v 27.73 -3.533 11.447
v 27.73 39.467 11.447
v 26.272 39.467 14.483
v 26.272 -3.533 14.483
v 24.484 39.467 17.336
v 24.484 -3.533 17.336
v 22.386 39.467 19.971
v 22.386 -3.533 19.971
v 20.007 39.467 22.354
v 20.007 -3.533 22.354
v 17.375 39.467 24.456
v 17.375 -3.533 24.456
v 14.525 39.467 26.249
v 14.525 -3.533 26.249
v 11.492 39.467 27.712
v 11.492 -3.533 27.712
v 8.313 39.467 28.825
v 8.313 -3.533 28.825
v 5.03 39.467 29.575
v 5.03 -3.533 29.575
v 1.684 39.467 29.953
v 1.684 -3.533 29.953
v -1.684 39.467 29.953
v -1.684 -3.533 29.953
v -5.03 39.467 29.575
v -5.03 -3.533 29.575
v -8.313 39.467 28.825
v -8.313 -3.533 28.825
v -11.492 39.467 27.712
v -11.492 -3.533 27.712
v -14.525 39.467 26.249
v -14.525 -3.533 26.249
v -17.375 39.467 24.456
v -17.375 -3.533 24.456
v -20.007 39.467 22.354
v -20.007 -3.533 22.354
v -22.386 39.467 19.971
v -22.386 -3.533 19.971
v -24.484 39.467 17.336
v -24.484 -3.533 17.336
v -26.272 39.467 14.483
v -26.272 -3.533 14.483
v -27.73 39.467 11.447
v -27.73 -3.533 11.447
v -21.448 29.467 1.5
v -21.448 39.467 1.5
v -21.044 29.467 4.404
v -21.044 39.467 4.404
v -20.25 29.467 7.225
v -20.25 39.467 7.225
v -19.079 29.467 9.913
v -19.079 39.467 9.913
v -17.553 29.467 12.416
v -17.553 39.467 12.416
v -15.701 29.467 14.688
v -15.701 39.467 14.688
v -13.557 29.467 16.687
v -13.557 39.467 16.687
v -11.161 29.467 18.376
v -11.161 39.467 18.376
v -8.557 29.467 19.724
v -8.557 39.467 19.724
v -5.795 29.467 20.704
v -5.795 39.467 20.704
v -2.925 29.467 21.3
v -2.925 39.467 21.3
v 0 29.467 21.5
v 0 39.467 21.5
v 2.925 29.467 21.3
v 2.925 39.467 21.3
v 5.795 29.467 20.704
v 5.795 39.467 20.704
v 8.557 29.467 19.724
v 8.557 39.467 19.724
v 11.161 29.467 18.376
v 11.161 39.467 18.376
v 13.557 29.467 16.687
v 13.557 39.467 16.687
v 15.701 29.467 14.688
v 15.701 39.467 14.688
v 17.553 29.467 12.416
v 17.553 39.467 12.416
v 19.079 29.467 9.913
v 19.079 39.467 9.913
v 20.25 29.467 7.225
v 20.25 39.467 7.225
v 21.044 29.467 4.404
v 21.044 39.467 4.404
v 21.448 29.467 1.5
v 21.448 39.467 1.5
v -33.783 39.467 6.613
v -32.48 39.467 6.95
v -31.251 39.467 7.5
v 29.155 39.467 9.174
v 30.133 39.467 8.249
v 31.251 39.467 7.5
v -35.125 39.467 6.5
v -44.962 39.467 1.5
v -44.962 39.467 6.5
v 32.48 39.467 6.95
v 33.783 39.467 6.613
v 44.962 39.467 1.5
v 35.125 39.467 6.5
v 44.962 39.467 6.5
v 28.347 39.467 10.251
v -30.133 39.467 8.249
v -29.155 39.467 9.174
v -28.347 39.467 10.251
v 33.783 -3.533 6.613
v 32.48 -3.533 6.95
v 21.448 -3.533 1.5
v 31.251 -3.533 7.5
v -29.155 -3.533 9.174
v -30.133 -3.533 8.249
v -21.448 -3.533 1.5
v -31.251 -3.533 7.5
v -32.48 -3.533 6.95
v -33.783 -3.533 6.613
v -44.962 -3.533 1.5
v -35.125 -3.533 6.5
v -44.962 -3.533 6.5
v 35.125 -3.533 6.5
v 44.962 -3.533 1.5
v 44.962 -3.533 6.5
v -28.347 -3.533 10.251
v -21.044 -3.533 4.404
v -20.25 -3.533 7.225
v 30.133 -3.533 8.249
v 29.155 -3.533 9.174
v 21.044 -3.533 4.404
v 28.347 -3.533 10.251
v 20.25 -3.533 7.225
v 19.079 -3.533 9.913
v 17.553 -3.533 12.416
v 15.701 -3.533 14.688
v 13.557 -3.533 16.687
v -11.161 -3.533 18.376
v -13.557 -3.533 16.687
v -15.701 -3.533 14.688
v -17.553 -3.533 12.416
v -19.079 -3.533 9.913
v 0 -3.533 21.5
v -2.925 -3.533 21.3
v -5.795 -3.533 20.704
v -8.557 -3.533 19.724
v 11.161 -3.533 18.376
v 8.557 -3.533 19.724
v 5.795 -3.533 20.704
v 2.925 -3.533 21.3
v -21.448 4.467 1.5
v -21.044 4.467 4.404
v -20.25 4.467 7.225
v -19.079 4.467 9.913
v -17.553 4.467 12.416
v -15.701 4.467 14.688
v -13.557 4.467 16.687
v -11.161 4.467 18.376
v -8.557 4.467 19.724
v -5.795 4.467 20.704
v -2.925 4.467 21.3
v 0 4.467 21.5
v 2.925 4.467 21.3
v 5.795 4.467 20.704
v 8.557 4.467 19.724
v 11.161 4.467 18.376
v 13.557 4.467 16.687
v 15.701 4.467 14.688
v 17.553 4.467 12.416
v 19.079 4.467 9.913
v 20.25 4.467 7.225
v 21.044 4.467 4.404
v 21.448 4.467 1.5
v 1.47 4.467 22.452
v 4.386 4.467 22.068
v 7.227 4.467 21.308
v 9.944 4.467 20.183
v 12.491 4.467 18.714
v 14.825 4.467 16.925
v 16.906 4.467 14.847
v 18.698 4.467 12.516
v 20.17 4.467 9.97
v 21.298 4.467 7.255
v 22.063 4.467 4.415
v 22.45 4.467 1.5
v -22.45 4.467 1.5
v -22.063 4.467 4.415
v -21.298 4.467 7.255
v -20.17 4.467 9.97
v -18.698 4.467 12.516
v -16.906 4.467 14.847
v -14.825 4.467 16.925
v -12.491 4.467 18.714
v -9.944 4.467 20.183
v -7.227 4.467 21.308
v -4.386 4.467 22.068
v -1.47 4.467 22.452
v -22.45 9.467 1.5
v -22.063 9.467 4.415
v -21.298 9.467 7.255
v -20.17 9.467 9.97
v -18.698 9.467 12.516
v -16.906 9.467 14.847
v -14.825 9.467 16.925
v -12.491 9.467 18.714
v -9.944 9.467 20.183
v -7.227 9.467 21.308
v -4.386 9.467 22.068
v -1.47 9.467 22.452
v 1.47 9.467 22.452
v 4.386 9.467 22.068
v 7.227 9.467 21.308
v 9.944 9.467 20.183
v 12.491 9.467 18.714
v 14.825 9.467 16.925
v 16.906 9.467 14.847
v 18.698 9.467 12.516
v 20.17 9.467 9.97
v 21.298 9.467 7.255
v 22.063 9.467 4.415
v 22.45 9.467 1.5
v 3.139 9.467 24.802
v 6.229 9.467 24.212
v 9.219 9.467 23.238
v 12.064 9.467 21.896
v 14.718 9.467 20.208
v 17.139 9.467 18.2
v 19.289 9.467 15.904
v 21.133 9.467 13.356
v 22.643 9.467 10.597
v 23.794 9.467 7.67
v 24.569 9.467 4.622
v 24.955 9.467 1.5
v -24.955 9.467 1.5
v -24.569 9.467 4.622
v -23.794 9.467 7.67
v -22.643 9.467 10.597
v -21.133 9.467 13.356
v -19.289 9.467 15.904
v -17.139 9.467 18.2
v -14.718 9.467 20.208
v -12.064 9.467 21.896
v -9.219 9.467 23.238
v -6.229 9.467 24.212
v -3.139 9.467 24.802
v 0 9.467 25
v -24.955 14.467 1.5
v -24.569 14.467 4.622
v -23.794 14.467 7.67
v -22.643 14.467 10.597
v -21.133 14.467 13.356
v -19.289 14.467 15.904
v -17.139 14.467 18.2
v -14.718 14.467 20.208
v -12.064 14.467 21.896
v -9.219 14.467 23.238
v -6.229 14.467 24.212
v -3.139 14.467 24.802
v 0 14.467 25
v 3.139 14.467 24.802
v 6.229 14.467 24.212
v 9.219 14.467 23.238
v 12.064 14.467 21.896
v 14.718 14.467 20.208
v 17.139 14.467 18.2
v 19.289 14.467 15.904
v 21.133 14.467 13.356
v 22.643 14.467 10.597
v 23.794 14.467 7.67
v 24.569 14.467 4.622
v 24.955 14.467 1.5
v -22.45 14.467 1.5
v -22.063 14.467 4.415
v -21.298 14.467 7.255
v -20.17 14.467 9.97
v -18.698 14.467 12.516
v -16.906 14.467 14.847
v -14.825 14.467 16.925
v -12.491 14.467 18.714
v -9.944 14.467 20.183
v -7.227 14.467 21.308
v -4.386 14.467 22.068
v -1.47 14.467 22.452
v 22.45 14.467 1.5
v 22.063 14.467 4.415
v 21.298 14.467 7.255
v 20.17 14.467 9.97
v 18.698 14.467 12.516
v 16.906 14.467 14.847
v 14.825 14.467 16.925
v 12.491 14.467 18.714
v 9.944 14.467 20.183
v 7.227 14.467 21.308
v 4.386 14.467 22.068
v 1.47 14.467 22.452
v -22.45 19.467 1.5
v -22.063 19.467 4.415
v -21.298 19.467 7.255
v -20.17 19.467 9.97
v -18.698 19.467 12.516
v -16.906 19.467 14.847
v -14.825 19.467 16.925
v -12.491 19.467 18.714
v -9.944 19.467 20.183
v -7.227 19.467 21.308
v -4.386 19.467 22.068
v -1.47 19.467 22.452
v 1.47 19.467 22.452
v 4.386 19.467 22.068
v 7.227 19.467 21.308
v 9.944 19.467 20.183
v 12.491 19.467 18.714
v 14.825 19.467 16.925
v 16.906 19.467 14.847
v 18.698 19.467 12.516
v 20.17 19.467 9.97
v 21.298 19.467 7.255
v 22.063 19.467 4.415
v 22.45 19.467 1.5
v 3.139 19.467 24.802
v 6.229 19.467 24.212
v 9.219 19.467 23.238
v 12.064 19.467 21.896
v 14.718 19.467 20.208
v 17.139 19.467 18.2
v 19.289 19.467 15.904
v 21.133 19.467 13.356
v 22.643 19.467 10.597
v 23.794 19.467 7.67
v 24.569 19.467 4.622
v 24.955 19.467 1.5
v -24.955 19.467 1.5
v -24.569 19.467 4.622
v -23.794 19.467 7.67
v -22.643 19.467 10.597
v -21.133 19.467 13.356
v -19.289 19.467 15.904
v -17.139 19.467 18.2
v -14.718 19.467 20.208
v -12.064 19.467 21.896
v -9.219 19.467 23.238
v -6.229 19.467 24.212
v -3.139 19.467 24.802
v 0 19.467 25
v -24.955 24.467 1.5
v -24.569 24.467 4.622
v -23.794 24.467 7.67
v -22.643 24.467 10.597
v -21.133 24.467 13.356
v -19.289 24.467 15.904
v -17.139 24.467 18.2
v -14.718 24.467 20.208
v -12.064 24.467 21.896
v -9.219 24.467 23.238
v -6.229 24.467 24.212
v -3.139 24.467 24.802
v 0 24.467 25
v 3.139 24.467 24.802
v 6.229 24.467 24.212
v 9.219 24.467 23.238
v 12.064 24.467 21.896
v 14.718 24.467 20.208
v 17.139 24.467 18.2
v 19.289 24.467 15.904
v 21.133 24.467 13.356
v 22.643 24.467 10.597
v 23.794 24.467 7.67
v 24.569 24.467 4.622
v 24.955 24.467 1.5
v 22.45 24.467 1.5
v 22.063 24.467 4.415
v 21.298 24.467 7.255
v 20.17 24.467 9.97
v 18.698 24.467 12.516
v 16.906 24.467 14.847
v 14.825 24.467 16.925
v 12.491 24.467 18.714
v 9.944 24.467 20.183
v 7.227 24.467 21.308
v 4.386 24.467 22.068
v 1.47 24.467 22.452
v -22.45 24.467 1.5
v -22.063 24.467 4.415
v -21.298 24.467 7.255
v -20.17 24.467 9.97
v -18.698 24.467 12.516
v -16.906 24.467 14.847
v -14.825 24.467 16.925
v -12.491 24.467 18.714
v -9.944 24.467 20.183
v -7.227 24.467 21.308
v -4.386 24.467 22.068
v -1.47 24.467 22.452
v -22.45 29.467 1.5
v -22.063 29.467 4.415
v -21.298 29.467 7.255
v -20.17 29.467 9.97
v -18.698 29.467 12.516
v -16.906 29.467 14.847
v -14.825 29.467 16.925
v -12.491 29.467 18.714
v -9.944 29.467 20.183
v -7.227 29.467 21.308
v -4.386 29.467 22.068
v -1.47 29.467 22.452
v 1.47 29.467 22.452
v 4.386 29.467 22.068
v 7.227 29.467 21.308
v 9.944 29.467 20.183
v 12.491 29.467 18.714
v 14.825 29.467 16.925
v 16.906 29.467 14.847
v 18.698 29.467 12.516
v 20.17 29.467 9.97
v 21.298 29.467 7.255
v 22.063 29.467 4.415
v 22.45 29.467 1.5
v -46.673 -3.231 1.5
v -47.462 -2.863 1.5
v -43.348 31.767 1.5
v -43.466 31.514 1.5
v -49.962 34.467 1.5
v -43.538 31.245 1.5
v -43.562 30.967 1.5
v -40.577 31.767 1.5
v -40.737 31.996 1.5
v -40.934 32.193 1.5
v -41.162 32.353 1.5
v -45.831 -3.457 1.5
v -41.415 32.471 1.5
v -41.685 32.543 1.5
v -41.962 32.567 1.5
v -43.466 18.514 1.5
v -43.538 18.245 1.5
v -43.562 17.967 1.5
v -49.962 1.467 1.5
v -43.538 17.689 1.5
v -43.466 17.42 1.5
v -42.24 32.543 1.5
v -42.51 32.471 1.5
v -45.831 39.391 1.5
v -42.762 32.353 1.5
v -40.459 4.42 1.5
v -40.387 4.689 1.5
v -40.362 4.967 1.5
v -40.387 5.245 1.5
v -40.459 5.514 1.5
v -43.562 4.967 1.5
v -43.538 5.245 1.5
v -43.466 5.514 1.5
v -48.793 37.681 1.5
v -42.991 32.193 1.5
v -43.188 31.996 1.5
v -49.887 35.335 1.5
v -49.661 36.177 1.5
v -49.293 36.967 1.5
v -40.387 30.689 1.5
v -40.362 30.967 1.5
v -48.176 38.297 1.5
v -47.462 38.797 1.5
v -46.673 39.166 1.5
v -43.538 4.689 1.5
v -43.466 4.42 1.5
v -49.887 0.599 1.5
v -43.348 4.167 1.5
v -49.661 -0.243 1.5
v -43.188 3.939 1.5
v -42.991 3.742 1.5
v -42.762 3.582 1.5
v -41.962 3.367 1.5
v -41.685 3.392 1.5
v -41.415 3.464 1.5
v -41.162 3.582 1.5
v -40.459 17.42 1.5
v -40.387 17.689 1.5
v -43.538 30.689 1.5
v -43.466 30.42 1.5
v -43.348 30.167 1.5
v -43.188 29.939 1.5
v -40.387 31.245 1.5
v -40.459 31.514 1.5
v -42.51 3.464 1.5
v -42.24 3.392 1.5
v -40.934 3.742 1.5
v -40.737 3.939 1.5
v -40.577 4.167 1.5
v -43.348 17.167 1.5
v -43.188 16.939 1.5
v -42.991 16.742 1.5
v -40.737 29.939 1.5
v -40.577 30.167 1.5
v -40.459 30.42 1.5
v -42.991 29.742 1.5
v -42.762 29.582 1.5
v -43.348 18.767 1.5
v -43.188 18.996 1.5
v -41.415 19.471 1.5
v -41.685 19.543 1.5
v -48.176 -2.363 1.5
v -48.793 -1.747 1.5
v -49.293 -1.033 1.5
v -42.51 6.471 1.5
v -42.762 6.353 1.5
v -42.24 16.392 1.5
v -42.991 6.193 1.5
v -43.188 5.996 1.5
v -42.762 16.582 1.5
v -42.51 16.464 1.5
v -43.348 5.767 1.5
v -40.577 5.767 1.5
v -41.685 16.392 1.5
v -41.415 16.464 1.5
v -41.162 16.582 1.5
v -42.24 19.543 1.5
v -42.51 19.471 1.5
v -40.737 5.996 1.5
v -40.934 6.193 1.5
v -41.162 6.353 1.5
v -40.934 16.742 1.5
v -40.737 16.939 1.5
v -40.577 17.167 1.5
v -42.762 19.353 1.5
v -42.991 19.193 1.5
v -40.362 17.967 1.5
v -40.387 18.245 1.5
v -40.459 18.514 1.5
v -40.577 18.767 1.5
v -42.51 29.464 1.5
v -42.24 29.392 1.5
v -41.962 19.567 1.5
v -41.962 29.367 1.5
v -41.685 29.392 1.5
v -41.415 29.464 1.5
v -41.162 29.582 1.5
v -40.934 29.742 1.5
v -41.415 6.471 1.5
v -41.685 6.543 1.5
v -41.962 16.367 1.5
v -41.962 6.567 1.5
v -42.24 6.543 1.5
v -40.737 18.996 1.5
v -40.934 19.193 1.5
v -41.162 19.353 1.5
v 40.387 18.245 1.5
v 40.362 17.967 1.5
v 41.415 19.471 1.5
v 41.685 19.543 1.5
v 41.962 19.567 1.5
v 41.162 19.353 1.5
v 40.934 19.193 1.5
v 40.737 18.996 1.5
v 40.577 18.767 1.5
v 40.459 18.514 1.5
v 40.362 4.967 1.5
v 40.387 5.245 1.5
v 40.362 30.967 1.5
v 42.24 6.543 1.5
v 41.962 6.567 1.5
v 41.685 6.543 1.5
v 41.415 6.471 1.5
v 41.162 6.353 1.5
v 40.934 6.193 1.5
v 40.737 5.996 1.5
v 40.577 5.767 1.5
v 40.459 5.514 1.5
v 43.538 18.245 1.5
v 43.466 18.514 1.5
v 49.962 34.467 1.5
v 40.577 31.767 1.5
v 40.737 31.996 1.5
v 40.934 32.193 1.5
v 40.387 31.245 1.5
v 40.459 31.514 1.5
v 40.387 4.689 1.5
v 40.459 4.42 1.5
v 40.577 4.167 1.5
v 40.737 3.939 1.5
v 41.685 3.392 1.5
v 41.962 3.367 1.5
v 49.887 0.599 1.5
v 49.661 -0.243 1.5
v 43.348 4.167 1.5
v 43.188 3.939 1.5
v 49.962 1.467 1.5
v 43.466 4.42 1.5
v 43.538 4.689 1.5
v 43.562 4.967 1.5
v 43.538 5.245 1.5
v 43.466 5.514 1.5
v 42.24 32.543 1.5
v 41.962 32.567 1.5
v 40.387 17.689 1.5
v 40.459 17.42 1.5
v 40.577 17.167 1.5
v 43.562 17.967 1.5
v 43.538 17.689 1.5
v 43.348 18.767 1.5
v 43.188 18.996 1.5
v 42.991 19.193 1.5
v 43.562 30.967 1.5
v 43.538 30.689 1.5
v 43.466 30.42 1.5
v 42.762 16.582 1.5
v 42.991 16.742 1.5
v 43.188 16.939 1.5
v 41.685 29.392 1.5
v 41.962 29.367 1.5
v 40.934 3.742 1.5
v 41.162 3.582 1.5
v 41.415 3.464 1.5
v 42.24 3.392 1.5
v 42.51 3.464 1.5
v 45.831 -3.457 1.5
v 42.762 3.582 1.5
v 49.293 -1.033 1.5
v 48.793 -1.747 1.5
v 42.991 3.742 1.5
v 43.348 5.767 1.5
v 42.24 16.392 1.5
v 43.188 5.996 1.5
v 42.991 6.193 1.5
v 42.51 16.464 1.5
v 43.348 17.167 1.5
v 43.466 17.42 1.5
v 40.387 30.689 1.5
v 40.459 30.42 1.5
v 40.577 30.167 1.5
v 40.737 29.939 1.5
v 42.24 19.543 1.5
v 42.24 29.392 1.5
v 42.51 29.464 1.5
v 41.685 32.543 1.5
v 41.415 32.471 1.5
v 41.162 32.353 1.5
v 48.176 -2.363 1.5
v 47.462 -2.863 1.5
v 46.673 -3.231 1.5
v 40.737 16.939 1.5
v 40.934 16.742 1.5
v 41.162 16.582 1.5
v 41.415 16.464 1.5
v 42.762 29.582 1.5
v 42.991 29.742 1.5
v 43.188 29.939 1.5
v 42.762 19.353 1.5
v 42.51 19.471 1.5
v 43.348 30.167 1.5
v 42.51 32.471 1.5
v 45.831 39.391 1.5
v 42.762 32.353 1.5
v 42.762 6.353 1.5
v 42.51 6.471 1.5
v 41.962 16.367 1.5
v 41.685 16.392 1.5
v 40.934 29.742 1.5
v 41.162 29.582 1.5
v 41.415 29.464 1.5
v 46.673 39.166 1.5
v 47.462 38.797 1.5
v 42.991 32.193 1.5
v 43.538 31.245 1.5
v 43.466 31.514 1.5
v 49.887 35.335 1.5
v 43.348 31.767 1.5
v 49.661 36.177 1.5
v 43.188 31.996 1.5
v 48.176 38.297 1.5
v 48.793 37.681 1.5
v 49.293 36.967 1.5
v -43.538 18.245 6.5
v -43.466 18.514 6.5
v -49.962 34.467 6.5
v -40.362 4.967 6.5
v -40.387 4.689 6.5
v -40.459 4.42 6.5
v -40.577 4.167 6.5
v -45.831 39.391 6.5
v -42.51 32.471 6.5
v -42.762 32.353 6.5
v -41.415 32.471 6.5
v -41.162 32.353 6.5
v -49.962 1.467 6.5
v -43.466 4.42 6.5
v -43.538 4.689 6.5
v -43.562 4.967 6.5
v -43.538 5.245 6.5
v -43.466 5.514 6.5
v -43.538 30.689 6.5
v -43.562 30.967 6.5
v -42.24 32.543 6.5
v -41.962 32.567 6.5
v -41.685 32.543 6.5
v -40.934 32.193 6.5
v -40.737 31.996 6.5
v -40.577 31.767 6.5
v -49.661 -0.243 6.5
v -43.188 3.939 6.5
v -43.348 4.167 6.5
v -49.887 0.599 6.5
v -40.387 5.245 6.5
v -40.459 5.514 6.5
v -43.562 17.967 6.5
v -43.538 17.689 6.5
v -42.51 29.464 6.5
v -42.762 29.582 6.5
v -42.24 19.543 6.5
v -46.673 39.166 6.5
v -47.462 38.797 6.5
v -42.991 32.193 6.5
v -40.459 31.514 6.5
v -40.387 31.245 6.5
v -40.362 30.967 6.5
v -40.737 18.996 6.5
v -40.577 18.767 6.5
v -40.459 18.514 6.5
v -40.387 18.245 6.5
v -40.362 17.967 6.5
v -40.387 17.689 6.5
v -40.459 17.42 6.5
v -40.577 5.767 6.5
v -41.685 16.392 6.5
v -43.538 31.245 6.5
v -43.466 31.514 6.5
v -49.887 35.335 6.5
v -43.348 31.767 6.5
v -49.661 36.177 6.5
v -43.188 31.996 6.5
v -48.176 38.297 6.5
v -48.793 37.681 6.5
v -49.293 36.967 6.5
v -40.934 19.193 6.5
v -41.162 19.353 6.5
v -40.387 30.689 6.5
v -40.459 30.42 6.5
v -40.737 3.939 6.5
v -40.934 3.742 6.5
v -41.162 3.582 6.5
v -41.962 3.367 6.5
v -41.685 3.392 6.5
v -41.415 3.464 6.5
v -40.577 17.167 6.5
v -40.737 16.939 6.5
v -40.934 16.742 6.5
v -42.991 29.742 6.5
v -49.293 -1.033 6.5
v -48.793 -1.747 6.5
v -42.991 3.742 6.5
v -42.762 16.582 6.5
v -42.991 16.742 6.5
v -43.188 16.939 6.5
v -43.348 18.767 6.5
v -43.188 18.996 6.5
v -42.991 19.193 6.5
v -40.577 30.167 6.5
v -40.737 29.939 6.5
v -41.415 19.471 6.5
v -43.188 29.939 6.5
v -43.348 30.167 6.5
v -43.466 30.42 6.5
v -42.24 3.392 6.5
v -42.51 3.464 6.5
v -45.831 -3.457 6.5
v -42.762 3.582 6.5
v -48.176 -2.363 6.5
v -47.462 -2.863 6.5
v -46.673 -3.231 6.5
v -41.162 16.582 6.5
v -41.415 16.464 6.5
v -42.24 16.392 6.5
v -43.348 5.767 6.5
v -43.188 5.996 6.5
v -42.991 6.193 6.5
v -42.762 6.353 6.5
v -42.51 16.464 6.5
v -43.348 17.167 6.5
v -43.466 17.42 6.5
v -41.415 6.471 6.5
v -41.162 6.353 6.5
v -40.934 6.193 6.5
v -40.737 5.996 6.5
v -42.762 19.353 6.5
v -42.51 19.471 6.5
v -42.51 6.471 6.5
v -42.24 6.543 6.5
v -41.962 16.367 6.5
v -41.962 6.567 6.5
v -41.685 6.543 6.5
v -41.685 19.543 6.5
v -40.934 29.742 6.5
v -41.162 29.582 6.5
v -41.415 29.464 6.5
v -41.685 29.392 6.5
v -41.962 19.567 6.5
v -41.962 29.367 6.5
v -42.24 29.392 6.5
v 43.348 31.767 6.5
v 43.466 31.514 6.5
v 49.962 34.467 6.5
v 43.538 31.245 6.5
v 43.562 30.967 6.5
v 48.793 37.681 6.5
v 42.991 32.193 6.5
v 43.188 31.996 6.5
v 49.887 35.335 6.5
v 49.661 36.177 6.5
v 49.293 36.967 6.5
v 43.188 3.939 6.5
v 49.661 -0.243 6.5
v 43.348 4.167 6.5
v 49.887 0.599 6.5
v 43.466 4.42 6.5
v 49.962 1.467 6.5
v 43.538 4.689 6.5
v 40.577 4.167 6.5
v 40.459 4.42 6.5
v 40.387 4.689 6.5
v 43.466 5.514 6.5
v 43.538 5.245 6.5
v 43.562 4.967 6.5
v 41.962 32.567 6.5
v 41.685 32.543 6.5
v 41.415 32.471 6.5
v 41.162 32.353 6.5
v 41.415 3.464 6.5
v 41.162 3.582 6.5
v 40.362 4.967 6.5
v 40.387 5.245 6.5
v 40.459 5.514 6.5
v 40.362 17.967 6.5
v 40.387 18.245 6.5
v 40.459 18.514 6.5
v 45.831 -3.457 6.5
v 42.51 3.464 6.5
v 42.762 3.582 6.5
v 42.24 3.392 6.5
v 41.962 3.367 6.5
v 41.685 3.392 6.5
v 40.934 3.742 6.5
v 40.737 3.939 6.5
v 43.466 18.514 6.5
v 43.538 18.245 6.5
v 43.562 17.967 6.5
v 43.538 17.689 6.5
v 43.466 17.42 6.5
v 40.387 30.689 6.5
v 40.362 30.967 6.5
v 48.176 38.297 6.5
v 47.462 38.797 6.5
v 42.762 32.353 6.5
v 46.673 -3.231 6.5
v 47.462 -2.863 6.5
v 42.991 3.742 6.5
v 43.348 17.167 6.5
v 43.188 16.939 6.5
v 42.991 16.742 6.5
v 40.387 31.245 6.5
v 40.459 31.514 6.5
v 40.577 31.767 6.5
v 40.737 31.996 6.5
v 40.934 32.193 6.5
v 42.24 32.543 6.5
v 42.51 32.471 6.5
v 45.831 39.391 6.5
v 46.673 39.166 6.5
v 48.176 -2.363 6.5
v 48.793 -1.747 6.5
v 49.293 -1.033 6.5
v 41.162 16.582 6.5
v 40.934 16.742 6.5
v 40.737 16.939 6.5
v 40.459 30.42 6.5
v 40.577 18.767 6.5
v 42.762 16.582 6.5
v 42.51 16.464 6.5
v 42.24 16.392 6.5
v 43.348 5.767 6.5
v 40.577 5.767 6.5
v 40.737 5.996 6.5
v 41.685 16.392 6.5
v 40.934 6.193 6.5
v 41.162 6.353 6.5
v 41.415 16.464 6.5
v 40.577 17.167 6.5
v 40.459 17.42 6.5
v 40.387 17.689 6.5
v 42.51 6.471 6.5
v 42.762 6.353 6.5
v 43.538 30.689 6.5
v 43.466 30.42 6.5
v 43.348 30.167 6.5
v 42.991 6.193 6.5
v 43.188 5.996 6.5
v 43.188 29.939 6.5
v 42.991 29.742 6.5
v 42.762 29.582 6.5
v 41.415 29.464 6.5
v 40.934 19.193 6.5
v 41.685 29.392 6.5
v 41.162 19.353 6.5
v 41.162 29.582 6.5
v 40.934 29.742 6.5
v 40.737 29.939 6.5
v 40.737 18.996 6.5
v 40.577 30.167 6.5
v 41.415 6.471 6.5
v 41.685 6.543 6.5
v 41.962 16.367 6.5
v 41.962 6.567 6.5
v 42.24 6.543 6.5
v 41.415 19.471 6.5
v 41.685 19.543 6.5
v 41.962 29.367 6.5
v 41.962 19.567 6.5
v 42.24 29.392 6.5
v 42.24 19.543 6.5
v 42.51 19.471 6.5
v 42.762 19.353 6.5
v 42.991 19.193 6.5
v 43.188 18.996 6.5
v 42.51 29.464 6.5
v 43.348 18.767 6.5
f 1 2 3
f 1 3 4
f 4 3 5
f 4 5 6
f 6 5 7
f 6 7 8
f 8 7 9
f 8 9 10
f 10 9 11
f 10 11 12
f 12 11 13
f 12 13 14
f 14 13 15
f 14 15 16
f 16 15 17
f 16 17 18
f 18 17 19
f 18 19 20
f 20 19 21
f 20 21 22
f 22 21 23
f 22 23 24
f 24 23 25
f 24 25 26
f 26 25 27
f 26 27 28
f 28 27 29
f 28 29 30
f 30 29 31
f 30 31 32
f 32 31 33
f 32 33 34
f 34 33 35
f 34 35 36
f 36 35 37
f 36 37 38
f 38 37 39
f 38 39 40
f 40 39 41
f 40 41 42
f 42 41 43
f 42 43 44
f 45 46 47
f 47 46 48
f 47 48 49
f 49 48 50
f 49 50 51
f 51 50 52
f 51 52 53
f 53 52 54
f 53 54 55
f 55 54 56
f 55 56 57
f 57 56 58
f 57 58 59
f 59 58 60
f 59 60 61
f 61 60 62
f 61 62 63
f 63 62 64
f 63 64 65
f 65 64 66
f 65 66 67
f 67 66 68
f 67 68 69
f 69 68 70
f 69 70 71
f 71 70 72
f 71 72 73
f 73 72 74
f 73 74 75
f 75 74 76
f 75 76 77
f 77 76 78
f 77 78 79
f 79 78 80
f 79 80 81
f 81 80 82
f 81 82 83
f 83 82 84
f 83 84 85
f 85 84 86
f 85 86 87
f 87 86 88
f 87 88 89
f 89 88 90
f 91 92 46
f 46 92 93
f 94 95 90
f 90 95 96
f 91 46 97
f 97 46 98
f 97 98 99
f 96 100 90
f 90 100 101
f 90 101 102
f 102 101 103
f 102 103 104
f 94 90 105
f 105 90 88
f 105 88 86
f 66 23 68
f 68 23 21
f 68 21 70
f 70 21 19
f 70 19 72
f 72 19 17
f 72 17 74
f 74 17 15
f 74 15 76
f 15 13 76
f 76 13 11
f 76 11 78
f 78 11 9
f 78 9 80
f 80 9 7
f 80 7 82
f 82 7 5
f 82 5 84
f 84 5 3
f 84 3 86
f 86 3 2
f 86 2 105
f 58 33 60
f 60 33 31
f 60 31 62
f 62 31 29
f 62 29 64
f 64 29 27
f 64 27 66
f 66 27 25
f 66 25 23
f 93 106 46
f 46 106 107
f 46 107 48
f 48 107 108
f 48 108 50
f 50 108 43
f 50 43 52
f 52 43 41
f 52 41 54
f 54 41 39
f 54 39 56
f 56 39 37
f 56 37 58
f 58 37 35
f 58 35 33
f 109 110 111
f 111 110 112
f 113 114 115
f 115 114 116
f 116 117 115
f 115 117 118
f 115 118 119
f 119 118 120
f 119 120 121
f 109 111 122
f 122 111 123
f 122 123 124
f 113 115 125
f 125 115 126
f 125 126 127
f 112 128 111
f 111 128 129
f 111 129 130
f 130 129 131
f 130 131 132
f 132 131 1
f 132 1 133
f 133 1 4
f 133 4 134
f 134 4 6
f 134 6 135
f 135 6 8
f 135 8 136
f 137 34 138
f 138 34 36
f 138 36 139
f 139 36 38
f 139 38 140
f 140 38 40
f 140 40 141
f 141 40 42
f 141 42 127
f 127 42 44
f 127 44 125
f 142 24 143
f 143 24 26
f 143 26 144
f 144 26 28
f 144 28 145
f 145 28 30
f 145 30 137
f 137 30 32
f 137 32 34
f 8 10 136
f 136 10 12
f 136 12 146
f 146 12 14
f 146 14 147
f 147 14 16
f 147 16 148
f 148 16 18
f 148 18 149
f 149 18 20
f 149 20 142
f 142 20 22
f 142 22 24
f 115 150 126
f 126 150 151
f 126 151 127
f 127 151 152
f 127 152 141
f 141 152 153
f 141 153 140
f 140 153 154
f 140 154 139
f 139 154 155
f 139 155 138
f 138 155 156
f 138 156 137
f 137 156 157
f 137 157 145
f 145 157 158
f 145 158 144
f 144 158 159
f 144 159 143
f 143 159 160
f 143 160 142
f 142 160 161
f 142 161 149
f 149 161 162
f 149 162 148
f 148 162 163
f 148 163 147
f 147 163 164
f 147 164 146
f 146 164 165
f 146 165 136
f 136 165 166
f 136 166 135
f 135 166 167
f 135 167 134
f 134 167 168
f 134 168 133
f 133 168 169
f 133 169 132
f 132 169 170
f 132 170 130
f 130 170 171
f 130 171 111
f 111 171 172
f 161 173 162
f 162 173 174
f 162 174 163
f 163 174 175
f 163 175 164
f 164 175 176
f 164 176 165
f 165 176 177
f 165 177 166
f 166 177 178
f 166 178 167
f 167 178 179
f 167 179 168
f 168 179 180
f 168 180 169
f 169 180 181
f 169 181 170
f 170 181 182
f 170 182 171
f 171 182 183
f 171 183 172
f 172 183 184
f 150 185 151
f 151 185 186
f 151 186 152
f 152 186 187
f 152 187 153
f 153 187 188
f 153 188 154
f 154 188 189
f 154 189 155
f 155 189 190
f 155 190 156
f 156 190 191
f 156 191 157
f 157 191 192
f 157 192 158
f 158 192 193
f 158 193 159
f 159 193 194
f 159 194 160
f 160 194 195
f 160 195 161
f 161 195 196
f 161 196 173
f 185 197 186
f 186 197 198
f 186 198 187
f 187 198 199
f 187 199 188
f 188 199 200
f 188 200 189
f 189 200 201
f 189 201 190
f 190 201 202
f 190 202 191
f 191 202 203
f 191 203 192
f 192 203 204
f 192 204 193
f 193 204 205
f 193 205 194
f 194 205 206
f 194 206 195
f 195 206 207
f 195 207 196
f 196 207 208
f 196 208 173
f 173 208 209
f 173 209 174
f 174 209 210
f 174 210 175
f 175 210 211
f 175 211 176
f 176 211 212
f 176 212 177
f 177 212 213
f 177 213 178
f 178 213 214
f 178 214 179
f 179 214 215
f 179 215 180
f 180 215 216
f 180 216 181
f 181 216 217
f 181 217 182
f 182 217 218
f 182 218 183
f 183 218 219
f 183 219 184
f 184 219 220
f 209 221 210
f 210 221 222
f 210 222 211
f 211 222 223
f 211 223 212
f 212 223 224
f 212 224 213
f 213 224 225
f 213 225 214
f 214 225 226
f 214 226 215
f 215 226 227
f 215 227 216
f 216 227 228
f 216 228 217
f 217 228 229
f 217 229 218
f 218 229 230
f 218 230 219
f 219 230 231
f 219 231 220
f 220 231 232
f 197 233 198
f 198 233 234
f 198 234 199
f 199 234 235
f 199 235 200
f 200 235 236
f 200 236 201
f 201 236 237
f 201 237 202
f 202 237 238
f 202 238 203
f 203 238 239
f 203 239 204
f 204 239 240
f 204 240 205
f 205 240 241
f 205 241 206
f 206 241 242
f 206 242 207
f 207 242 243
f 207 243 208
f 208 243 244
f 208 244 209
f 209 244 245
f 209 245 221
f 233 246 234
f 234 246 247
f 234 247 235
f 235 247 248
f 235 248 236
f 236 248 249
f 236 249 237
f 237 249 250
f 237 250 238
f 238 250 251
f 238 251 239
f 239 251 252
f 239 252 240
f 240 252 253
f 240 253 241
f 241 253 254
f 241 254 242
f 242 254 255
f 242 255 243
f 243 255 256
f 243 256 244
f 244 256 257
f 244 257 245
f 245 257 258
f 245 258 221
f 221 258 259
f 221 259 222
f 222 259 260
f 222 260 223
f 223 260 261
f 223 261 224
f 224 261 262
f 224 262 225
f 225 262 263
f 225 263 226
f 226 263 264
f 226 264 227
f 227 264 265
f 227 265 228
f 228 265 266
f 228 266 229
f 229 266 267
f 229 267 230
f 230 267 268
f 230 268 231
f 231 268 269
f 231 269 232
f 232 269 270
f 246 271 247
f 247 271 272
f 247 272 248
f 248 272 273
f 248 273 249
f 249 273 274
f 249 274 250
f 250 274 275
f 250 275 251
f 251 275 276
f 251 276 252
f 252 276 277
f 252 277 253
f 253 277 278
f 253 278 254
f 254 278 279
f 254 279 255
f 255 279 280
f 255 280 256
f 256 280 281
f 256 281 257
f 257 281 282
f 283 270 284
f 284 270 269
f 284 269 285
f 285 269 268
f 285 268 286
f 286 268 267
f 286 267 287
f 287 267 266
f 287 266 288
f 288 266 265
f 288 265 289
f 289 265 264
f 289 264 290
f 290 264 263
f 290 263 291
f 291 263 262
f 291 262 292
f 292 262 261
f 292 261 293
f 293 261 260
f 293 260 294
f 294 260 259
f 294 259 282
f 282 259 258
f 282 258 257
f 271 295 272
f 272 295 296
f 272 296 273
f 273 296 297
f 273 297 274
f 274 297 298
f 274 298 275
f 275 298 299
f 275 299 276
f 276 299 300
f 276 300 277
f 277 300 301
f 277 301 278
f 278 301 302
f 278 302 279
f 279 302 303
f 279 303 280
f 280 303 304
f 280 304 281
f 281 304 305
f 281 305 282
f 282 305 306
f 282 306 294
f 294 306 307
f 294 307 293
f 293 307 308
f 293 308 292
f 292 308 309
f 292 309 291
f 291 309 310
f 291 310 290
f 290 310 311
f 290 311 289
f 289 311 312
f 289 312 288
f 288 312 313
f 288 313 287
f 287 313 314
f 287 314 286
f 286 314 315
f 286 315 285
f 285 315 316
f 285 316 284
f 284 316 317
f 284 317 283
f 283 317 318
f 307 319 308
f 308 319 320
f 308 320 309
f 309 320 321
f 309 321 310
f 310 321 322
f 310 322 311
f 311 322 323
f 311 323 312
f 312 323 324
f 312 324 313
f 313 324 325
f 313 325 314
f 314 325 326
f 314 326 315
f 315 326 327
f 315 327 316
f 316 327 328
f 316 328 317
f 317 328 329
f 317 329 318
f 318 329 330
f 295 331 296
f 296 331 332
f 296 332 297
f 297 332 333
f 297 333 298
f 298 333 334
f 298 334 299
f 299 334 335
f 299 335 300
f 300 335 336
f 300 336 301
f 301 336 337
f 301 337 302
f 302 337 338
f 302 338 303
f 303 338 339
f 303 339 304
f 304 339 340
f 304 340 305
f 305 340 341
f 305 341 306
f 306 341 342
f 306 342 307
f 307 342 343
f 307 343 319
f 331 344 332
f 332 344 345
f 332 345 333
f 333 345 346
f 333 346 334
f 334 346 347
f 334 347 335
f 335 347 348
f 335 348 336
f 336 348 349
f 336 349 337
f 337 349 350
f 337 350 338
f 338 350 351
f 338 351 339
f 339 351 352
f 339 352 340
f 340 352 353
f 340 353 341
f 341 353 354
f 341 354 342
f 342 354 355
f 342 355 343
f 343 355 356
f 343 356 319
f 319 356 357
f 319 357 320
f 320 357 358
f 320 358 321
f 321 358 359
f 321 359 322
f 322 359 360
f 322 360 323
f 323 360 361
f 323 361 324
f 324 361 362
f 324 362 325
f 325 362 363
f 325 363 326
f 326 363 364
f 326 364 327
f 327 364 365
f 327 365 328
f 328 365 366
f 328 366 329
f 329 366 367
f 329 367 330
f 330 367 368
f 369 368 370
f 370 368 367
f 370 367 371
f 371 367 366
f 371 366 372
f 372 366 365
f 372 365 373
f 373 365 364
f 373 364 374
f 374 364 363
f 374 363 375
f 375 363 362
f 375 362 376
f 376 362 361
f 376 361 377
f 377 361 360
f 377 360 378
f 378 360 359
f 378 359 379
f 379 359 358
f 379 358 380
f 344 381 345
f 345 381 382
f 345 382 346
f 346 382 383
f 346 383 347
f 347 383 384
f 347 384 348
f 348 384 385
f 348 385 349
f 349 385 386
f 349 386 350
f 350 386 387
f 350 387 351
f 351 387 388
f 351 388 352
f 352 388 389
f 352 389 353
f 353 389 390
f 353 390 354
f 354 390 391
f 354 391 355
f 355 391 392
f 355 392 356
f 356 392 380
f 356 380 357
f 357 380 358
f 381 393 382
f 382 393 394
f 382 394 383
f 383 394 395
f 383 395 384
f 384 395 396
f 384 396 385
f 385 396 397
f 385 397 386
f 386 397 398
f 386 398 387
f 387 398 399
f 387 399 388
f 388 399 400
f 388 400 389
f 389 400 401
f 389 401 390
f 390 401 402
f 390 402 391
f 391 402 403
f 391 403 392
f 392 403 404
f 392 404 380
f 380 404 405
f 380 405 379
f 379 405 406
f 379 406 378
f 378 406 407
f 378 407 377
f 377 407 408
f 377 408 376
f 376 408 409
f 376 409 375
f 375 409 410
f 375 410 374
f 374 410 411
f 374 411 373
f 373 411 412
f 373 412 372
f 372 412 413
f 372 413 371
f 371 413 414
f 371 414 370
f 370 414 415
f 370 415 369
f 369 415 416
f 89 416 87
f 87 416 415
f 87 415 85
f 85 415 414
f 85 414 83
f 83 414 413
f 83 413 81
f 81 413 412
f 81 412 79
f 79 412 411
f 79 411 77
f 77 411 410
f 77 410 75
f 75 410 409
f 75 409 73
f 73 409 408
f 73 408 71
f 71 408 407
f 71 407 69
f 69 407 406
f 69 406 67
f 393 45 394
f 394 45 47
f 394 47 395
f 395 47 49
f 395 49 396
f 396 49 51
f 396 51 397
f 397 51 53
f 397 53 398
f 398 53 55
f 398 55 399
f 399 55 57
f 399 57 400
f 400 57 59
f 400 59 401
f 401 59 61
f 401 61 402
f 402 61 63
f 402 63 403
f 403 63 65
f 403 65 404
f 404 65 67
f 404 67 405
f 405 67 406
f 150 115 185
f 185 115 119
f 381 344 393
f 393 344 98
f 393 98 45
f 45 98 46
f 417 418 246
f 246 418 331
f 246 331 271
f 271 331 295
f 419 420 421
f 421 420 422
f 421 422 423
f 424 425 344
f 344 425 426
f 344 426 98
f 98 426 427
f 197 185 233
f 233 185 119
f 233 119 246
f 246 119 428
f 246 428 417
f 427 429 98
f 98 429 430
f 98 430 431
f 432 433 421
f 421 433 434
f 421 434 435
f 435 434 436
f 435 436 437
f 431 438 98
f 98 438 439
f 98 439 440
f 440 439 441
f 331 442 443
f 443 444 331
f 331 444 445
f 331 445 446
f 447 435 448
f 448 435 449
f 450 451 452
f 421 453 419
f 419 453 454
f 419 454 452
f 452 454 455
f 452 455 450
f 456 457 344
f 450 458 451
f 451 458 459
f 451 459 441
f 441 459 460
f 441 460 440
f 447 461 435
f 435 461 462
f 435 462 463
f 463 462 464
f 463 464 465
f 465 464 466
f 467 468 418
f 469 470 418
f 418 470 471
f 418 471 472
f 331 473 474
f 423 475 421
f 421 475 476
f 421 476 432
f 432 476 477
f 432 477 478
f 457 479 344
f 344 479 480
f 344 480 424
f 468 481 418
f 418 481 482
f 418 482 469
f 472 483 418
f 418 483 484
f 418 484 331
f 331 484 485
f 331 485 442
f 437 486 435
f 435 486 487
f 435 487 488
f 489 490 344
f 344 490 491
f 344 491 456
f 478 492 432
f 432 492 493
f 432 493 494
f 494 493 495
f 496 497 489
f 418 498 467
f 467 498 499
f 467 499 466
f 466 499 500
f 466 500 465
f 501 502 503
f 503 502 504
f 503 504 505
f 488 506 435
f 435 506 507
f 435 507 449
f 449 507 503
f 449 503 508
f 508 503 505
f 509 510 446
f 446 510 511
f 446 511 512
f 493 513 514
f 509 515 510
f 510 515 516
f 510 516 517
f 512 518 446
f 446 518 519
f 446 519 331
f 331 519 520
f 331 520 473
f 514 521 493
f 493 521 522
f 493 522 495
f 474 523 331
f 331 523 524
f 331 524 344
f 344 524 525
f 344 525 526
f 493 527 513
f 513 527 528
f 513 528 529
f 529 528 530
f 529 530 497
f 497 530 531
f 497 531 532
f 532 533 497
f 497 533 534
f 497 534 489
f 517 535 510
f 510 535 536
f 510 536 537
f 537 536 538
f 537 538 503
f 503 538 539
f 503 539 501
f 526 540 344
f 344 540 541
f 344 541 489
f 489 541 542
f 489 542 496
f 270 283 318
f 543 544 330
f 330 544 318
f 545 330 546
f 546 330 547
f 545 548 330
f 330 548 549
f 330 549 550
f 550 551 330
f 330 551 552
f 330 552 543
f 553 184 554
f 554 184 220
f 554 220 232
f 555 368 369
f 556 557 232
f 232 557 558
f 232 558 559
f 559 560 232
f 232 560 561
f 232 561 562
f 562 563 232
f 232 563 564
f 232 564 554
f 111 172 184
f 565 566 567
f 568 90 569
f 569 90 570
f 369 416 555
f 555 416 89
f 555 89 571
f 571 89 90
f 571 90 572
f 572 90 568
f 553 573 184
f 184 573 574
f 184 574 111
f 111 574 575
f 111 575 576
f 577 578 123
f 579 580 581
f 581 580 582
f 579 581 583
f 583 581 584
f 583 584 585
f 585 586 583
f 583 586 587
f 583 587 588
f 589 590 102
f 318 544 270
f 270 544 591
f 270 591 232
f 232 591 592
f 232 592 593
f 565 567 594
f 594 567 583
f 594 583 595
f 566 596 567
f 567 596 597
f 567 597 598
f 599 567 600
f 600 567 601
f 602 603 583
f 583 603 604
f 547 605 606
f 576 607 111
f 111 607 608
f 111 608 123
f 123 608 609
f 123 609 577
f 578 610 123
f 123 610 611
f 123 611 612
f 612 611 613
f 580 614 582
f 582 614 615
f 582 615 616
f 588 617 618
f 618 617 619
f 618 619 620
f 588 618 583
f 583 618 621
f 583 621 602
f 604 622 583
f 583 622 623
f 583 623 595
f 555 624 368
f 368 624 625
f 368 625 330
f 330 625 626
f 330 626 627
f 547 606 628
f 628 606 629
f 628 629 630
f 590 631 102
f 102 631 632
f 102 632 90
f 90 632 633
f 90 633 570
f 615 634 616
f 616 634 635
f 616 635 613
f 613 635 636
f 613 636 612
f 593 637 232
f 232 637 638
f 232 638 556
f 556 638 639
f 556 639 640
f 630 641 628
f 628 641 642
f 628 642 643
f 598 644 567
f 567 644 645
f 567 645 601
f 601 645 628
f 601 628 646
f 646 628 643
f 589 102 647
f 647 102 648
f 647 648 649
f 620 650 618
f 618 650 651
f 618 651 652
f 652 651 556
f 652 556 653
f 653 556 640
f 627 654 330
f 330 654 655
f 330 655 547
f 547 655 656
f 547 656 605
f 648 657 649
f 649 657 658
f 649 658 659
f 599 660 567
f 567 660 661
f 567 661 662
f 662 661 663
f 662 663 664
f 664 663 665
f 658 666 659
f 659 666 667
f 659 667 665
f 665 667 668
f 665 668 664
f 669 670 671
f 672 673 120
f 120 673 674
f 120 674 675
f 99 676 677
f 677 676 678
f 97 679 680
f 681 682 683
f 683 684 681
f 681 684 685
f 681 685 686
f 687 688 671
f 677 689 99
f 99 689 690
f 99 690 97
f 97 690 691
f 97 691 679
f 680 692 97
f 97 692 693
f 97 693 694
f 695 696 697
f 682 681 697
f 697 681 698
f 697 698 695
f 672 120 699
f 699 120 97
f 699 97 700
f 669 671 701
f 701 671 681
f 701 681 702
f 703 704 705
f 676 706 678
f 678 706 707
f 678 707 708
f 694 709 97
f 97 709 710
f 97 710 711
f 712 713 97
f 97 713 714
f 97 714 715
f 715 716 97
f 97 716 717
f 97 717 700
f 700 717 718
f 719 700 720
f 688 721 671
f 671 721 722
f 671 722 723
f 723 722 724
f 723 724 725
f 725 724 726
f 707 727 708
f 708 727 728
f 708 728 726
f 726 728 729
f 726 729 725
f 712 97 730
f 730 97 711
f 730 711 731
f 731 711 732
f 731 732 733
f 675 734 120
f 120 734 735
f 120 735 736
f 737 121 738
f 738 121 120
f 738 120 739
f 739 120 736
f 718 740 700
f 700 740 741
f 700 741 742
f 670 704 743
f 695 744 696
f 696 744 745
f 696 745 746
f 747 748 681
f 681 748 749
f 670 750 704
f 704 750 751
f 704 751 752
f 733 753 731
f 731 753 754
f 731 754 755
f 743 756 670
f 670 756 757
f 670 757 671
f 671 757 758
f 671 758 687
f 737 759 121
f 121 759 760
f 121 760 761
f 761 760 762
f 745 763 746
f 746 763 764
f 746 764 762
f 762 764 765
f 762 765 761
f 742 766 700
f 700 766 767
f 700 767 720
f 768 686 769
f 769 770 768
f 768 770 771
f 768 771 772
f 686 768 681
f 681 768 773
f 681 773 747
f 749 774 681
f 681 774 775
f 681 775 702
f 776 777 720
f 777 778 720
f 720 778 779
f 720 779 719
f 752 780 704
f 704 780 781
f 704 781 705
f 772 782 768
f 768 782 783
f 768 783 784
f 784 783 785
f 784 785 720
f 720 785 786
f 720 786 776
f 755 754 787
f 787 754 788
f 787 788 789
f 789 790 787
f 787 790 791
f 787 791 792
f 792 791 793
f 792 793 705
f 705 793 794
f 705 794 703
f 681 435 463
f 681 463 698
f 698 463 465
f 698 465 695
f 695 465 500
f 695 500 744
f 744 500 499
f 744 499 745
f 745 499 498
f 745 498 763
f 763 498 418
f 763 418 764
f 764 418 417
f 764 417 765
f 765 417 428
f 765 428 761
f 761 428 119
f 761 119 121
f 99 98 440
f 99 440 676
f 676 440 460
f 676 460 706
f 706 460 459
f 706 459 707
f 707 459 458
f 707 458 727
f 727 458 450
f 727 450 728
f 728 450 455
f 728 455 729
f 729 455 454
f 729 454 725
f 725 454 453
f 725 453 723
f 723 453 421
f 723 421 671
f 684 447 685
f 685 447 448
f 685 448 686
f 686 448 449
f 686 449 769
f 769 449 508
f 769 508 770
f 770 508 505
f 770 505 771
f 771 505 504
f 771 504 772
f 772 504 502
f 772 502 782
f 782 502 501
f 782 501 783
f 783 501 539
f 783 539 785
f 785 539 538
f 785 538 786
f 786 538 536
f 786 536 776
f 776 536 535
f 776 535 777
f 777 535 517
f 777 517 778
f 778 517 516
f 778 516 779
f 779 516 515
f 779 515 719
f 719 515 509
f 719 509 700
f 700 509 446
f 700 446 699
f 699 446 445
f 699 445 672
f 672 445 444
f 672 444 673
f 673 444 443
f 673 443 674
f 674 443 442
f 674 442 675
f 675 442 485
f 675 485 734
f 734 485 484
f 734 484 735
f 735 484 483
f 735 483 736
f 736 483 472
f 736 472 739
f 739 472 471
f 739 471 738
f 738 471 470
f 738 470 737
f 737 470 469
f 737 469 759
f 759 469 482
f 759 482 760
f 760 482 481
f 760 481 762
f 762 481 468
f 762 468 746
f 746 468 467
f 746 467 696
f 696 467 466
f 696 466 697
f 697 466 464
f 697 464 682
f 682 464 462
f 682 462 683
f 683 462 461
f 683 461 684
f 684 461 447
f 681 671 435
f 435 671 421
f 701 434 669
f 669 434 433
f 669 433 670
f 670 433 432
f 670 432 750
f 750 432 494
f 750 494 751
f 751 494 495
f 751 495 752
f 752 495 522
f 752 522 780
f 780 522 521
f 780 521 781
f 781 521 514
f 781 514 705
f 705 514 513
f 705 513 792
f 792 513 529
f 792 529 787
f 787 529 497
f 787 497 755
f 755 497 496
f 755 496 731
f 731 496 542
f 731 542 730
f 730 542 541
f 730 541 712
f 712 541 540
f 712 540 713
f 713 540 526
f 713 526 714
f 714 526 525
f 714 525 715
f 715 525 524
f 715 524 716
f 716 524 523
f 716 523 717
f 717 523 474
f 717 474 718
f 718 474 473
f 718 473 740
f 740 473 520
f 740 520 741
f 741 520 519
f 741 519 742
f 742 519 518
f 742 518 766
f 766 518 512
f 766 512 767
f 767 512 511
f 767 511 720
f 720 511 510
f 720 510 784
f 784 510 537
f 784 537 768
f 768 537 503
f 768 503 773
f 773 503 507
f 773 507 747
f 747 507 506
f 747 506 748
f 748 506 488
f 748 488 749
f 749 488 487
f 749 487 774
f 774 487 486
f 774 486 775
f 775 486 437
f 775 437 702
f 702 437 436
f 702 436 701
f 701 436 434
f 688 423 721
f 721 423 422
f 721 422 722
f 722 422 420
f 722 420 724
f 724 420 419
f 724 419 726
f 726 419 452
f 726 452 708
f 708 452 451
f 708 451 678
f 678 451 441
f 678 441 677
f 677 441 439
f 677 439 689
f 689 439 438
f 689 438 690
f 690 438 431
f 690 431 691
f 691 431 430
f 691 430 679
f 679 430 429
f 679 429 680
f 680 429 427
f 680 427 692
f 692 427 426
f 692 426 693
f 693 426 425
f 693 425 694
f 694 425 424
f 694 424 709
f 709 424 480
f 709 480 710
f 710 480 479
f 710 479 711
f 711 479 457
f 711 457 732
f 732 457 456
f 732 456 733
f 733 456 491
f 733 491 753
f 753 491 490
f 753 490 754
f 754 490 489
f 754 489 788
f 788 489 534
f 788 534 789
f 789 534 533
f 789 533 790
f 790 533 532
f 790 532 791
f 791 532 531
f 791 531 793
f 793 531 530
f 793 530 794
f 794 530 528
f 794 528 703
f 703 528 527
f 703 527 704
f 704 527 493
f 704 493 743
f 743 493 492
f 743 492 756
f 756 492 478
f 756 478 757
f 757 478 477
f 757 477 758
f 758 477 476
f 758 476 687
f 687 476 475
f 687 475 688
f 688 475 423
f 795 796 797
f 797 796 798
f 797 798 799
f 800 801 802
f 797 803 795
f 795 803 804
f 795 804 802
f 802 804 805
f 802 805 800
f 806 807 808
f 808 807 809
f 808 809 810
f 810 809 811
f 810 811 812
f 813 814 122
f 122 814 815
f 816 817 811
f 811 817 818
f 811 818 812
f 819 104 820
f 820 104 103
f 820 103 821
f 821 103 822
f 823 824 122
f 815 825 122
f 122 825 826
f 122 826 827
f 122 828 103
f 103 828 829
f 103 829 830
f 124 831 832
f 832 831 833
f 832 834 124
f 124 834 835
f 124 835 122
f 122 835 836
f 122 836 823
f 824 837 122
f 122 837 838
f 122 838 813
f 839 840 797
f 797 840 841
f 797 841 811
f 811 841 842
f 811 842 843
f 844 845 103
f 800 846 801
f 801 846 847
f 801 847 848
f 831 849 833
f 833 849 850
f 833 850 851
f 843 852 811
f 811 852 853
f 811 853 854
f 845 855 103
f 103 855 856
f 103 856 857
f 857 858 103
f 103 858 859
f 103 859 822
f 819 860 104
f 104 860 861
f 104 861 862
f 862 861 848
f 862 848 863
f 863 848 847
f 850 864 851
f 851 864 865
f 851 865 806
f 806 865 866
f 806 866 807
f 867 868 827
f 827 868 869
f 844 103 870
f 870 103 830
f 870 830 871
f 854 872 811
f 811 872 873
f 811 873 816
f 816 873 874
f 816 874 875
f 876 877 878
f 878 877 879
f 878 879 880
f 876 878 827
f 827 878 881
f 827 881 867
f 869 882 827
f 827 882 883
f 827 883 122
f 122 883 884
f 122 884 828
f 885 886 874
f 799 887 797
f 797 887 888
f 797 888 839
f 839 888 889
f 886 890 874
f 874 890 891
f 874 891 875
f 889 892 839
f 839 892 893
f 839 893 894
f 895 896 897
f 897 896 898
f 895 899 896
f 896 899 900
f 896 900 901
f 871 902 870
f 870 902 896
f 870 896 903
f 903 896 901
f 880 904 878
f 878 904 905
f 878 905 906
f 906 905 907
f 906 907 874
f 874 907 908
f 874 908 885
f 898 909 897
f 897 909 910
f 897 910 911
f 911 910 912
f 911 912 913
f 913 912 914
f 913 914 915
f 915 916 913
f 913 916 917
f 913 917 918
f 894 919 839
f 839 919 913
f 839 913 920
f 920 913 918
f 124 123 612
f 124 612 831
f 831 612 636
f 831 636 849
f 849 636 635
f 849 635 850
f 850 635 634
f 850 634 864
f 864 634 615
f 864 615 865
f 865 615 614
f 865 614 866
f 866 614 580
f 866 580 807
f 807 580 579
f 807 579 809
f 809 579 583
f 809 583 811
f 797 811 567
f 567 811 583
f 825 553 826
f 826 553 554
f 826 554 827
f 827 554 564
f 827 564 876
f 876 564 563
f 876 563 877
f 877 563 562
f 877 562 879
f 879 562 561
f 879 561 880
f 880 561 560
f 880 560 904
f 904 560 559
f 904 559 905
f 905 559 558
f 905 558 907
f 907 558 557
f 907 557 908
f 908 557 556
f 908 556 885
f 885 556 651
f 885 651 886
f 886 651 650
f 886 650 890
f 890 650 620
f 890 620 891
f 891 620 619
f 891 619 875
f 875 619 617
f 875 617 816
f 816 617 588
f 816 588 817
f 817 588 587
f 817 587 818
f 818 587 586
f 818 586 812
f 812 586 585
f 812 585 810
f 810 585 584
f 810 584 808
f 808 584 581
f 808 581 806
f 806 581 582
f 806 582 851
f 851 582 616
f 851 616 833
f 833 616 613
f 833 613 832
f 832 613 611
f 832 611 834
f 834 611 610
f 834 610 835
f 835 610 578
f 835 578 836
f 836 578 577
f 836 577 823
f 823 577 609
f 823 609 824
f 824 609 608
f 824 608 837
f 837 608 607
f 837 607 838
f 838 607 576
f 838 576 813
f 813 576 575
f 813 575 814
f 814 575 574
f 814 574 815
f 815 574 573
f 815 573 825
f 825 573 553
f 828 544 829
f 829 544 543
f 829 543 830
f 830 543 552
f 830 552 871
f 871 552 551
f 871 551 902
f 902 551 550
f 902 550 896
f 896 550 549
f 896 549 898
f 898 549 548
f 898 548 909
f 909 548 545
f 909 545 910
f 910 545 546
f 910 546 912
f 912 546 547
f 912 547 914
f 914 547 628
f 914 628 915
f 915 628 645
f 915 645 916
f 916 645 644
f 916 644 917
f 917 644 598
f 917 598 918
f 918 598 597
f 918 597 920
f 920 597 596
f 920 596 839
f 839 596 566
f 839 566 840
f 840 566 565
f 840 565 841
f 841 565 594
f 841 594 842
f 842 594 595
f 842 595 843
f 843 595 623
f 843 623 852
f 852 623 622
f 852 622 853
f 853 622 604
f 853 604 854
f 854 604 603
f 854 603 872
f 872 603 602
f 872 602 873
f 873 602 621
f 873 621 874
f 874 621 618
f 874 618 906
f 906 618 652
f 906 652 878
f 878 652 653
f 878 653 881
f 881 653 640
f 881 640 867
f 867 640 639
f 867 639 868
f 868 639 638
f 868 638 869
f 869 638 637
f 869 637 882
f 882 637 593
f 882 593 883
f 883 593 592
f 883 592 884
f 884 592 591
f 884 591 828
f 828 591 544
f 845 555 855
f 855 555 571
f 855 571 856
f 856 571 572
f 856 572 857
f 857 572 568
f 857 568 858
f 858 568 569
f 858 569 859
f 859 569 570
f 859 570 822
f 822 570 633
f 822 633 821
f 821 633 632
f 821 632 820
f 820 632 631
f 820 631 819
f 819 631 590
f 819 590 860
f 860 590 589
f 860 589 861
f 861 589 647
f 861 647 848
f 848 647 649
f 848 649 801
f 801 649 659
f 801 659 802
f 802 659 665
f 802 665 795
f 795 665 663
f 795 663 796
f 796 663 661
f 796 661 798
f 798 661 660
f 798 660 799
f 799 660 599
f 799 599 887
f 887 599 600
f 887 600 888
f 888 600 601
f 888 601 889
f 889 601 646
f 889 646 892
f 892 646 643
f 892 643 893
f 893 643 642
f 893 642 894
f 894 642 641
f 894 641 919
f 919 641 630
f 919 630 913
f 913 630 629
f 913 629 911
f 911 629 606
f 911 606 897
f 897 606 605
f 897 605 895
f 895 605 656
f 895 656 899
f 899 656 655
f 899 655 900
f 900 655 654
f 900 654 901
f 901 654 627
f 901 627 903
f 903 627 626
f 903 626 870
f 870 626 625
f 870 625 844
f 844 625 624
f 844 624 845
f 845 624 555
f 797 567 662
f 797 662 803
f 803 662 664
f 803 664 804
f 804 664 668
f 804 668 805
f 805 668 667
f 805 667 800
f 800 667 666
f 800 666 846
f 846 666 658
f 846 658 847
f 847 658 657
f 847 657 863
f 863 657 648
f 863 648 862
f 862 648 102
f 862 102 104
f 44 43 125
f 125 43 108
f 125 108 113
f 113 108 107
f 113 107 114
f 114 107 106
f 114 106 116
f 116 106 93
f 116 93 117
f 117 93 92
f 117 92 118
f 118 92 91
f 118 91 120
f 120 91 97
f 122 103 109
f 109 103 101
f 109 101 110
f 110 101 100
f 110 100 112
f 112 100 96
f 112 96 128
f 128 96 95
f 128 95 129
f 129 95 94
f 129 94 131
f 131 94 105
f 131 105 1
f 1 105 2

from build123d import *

# Parameters (mm, degrees)
REVOLVE_1_ANGLE     = 180
SKETCH_2_W          = 82.604360497
SKETCH_2_H          = 69.359352877
CUT_EXTRUDE_1_DEPTH = 1.5
SKETCH_3_R          = 1.6
SKETCH_3_W          = 3
SKETCH_3_H          = 43
EXTRUDE_1_DEPTH     = 5
FILLET_1_R          = 8


with BuildPart() as part:
    # 草图1 → 旋转1 (revolve)
    with BuildSketch(Plane.XY):
        Polygon((22.5, 29.467251478), (21.5, 29.467251478), (21.5, 39.467251478), (30, 39.467251478), (30, -3.532748522), (21.5, -3.532748522), (21.5, 4.467251478), (22.5, 4.467251478), (22.5, 9.467251478), (25, 9.467251478), (25, 14.467251478), (22.5, 14.467251478), (22.5, 19.467251478), (25, 19.467251478), (25, 24.467251478), (22.5, 24.467251478), align=None)
    revolve(axis=Axis((0, 80.879290808, 0), (0, -1, 0)), revolution_arc=REVOLVE_1_ANGLE)

    # 草图2 → 切除-拉伸1 (cut)
    with BuildSketch(Plane(origin=(0, 0, 0), x_dir=(-1, 0, 0), z_dir=(0, 0, -1))):
        with Locations((1.112176212, 17.562823765)):
            Rectangle(SKETCH_2_W, SKETCH_2_H)
    extrude(amount=-CUT_EXTRUDE_1_DEPTH, mode=Mode.SUBTRACT)

    # 草图3 → 凸台-拉伸1 (add)
    # profile 1 of 3: a face of its own
    with BuildSketch(Plane(origin=(0, 0, 1.5), x_dir=(-1, 0, 0), z_dir=(0, 0, -1))):
        with BuildLine():
            ThreePointArc((49.962476533, 1.467251478), (48.498010439, -2.068282428), (44.962476533, -3.532748522))
            Line((44.962476533, -3.532748522), (29.962476533, -3.532748522))
            Line((29.962476533, -3.532748522), (29.962476533, 39.467251478))
            Line((29.962476533, 39.467251478), (44.962476533, 39.467251478))
            ThreePointArc((44.962476533, 39.467251478), (48.498010439, 38.002785384), (49.962476533, 34.467251478))
            Line((49.962476533, 34.467251478), (49.962476533, 1.467251478))
        make_face()
        with Locations((41.962476533, 17.967251478)):
            Circle(SKETCH_3_R, mode=Mode.SUBTRACT)
        with Locations((41.962476533, 4.967251478)):
            Circle(SKETCH_3_R, mode=Mode.SUBTRACT)
        with Locations((41.962476533, 30.967251478)):
            Circle(SKETCH_3_R, mode=Mode.SUBTRACT)
    # profile 2 of 3: a face of its own
    with BuildSketch(Plane(origin=(0, 0, 1.5), x_dir=(-1, 0, 0), z_dir=(0, 0, -1))):
        with Locations((28.462476533, 17.967251478)):
            Rectangle(SKETCH_3_W, SKETCH_3_H)
    # profile 3 of 3: a face of its own
    with BuildSketch(Plane(origin=(0, 0, 1.5), x_dir=(-1, 0, 0), z_dir=(0, 0, -1))):
        with BuildLine():
            Line((-29.962476533, 39.467251478), (-44.962476533, 39.467251478))
            ThreePointArc((-44.962476533, 39.467251478), (-48.498010439, 38.002785384), (-49.962476533, 34.467251478))
            Line((-49.962476533, 34.467251478), (-49.962476533, 1.467251478))
            ThreePointArc((-49.962476533, 1.467251478), (-48.498010439, -2.068282428), (-44.962476533, -3.532748522))
            Line((-44.962476533, -3.532748522), (-29.962476533, -3.532748522))
            Line((-29.962476533, -3.532748522), (-26.962476533, -3.532748522))
            Line((-26.962476533, -3.532748522), (-26.962476533, 39.467251478))
            Line((-26.962476533, 39.467251478), (-29.962476533, 39.467251478))
        make_face()
        with Locations((-41.962476533, 30.967251478)):
            Circle(SKETCH_3_R, mode=Mode.SUBTRACT)
        with Locations((-41.962476533, 17.967251478)):
            Circle(SKETCH_3_R, mode=Mode.SUBTRACT)
        with Locations((-41.962476533, 4.967251478)):
            Circle(SKETCH_3_R, mode=Mode.SUBTRACT)
    extrude(amount=-EXTRUDE_1_DEPTH)

    # 圆角1
    fillet_1_edges = [part.edges().sort_by_distance(p)[0] for p in [
        (-29.287369291, 17.967251478, 6.5),
        (29.287369291, 17.967251478, 6.5),
    ]]
    fillet(fillet_1_edges, radius=FILLET_1_R)


solid = part.part
